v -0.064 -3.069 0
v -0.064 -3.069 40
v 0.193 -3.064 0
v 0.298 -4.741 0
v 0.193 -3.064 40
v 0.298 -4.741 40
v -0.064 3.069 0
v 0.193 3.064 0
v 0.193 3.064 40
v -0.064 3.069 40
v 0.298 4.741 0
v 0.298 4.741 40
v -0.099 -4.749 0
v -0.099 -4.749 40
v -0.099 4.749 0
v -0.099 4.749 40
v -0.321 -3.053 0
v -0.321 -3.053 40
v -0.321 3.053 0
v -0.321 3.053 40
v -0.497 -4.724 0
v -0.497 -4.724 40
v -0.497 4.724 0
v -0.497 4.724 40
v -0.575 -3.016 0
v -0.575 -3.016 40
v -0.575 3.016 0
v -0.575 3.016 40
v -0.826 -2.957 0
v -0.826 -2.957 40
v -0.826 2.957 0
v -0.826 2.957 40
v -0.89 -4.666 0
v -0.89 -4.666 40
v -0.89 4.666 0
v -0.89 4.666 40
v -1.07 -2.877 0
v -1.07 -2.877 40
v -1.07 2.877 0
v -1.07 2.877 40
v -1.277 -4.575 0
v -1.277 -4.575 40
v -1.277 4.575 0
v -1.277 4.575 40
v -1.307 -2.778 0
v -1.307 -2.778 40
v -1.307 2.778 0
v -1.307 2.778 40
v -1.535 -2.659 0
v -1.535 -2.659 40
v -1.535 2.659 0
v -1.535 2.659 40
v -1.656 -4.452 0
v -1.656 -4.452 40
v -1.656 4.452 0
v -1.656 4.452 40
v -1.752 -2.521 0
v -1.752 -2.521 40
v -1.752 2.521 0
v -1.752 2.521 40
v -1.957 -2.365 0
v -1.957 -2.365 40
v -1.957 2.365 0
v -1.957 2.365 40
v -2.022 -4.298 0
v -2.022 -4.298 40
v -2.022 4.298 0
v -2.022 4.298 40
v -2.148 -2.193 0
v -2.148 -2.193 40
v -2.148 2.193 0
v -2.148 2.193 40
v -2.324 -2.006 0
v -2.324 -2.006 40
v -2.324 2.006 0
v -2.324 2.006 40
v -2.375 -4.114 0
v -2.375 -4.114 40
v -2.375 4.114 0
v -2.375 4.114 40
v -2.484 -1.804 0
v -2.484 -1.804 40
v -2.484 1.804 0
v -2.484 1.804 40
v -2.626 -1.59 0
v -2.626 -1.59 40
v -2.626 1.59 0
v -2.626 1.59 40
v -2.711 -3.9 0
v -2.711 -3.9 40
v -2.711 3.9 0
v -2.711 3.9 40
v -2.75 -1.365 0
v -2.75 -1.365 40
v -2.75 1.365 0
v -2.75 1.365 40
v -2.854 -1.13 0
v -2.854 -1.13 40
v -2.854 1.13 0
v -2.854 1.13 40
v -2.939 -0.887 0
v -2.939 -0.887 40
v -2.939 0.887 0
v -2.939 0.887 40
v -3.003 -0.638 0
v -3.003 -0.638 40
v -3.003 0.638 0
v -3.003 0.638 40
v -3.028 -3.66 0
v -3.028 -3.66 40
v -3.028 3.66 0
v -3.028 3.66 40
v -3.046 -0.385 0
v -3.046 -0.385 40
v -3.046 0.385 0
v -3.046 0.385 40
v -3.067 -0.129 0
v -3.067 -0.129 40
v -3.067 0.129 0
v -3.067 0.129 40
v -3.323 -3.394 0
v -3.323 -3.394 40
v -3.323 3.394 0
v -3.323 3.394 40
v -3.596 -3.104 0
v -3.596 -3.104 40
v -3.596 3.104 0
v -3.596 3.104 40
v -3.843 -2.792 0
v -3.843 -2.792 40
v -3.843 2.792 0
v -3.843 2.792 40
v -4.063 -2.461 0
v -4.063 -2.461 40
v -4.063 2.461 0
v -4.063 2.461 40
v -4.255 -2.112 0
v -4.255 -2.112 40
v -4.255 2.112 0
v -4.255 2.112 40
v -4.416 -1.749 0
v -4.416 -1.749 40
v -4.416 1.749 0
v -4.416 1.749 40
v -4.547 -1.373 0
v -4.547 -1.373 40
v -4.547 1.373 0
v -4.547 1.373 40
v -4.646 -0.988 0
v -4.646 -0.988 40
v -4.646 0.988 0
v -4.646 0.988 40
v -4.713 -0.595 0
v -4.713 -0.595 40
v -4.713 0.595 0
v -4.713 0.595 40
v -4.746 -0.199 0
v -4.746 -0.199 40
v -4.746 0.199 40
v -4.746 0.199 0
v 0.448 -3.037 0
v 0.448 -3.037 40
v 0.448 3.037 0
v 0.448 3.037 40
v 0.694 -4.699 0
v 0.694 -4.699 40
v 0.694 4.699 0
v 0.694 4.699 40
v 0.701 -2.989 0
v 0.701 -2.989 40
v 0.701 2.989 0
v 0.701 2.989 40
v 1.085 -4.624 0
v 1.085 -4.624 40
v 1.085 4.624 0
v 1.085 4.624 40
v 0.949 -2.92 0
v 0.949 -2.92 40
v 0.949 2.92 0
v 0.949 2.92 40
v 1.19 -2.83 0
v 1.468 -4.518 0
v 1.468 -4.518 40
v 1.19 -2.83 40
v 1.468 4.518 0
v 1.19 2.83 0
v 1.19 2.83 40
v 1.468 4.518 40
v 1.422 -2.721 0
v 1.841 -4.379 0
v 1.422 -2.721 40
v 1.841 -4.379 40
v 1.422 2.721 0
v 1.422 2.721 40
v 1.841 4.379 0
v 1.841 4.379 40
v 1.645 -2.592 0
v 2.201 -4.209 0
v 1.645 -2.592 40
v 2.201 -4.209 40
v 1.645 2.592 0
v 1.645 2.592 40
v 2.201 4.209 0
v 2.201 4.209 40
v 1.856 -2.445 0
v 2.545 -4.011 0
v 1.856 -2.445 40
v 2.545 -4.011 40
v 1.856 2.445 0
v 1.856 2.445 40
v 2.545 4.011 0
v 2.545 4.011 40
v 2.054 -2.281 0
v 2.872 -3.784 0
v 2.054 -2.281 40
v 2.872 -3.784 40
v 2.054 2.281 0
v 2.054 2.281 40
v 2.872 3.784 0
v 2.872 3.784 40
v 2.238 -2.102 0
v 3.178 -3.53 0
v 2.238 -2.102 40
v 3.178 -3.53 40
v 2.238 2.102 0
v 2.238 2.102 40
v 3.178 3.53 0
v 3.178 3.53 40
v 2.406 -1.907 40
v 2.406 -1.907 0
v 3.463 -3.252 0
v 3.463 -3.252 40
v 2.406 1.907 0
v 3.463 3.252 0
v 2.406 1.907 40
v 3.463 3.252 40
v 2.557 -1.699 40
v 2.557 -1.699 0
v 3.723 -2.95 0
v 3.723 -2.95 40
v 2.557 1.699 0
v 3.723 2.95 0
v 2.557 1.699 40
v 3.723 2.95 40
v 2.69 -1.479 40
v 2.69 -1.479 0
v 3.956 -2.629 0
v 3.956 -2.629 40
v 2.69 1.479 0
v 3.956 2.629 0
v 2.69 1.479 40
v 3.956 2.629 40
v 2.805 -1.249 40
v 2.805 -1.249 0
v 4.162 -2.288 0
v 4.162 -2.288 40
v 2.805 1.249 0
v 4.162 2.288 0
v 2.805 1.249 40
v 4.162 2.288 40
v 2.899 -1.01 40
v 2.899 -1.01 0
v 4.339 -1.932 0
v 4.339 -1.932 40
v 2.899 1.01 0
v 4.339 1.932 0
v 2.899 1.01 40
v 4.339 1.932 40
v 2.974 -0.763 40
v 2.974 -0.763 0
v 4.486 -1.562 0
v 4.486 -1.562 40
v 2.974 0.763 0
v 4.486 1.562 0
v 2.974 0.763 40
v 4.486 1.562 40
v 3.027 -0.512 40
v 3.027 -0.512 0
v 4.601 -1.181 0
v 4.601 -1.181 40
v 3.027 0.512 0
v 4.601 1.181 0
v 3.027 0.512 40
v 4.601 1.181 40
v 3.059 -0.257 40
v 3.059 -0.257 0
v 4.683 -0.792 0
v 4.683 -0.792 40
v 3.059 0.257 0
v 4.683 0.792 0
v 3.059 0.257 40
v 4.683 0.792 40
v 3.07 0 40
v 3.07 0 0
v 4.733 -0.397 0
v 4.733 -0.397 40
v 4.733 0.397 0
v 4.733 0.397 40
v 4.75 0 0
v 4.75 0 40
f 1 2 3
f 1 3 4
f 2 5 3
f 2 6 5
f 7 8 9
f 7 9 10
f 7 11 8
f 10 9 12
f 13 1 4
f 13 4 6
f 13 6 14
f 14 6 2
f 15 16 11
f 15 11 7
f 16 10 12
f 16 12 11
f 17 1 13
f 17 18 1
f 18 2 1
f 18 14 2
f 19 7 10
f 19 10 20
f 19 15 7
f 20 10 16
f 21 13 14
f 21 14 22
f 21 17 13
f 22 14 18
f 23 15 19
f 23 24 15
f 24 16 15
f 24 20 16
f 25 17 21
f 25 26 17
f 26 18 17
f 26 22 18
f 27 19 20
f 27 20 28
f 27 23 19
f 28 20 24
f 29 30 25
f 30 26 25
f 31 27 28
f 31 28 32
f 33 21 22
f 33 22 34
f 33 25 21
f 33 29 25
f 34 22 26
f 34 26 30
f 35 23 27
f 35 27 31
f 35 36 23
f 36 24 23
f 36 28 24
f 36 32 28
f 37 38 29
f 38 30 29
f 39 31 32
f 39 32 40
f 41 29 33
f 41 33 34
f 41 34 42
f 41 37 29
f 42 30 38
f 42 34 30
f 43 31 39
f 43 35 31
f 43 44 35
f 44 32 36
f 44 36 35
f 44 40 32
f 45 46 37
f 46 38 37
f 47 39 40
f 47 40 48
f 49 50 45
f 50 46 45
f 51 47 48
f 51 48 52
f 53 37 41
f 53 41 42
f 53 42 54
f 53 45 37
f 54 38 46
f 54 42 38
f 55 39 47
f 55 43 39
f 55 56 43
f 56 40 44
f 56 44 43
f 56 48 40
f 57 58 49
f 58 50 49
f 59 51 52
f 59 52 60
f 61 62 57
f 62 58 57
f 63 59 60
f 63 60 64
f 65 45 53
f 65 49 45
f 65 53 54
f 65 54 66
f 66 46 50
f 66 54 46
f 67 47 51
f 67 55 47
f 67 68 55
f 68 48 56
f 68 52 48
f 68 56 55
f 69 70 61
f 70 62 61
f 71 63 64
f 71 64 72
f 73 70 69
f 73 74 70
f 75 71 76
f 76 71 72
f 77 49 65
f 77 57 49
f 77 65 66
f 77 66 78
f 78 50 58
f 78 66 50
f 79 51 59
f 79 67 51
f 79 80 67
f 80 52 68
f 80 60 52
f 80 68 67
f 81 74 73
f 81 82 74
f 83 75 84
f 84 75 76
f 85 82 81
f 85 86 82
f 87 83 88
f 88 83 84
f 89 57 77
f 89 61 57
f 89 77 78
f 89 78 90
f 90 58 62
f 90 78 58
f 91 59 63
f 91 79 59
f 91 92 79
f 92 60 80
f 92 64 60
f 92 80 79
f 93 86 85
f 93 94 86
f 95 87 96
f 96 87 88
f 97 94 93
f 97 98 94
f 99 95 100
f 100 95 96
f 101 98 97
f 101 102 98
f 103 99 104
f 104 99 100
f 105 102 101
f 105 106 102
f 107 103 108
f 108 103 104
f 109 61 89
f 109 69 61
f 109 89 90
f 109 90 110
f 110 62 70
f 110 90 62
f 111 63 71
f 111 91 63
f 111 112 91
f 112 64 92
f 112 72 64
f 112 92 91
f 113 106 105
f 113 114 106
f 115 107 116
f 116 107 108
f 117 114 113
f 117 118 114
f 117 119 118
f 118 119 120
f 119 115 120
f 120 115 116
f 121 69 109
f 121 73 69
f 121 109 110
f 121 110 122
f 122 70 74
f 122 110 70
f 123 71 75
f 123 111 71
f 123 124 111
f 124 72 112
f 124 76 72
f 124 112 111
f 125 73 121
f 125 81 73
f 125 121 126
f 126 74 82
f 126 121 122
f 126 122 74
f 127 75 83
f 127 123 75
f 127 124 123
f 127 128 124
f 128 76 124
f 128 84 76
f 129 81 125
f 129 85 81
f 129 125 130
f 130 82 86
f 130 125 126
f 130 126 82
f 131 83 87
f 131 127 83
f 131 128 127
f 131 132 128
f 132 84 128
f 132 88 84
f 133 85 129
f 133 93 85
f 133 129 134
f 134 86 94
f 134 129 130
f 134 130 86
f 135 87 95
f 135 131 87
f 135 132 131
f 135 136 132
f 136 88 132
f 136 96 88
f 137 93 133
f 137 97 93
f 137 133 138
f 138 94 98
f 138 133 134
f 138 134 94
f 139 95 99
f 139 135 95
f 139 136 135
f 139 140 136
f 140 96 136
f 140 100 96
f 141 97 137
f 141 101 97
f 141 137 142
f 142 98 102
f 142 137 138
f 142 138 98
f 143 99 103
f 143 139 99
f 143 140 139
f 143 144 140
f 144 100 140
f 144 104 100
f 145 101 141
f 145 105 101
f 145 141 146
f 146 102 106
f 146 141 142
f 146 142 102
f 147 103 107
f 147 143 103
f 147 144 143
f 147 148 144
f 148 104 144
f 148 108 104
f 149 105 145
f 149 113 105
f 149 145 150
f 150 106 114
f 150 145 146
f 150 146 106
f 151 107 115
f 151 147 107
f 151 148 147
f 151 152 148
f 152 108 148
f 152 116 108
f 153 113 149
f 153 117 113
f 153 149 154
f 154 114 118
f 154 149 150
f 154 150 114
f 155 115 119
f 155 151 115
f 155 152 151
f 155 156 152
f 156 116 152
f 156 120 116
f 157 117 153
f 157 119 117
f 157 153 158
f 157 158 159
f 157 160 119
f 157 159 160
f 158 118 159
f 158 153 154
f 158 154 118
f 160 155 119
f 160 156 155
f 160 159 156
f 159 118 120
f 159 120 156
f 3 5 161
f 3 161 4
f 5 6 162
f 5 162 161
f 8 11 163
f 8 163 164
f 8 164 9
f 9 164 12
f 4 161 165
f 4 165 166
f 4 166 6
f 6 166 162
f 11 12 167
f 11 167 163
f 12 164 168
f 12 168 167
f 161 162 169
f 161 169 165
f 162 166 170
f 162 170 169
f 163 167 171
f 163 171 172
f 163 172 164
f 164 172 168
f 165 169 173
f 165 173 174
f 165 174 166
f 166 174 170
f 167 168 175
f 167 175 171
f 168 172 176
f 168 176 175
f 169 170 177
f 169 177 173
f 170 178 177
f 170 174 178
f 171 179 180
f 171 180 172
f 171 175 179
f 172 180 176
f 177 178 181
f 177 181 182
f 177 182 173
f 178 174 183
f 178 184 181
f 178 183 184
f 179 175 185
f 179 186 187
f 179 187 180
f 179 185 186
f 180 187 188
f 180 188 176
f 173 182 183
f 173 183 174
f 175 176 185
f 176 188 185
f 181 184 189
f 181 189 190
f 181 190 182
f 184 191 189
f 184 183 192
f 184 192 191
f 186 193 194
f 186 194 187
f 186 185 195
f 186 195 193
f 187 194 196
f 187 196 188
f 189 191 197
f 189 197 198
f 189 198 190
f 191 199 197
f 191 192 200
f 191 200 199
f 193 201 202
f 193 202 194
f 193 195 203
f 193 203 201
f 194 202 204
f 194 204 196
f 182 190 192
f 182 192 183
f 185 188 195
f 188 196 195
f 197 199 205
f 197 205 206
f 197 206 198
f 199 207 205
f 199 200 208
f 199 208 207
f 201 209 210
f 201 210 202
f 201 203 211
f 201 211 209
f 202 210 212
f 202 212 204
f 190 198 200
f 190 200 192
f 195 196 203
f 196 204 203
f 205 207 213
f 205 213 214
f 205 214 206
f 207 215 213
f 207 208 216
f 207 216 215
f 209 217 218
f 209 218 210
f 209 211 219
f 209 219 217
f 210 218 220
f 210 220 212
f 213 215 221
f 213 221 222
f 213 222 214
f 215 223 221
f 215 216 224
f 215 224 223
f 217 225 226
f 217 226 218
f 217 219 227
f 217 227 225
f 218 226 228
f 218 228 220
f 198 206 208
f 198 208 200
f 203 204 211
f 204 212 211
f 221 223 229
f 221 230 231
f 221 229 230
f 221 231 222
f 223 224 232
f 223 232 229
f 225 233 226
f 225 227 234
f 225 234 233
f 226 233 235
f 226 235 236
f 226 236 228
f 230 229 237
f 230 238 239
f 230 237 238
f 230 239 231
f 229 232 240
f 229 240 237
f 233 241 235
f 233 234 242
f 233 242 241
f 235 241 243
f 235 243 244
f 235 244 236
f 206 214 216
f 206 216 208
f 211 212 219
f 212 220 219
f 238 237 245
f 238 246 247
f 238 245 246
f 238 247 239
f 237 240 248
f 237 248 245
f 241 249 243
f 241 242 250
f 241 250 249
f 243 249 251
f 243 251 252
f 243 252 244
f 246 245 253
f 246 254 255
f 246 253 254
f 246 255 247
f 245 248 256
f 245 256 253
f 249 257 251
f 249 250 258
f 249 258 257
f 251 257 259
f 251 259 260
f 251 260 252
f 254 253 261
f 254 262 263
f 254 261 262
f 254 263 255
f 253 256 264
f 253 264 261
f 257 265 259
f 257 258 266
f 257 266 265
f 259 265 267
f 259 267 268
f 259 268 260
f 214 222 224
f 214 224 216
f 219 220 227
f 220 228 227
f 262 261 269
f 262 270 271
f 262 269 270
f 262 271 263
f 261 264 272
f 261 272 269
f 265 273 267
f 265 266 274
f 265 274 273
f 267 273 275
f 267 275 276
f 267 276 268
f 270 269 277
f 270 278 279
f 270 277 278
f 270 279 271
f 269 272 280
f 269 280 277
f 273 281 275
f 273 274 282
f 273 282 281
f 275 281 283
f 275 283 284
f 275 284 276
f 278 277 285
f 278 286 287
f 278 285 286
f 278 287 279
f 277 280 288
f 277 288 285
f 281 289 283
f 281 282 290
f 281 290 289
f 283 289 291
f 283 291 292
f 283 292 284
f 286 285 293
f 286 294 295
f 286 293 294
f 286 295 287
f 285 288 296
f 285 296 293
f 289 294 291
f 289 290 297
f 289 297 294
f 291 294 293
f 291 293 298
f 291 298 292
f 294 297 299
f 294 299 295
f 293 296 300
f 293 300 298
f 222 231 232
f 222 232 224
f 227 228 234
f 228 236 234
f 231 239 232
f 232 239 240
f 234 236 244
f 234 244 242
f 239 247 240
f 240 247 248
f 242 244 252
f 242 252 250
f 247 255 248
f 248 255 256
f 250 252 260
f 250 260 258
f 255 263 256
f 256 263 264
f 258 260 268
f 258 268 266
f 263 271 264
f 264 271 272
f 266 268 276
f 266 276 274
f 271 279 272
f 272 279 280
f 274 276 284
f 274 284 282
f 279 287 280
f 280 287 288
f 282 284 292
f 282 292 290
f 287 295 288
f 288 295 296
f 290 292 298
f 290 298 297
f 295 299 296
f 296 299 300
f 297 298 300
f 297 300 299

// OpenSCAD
// file: ../configuration.scad
// Created by Phisik on 2018-12-16
// Main settings header for peristaltic pump

// Licence GPL

// some extra gap for clean difference render in preview
eps = 0.1;

// Part smoothness, the more the better
$fn = 100;

layer_height = 0.25;

// Silicon hose settings
//====================================================================================

// NB! The larger the hose radius the higher torque is required
r_hose = 22;        // radius of hose center line
                    // Update: after addition of groove hose center is at r_hose + hose_groove
d_hose = 9;         // hose diameter

hose_wall = 1.5;   // hose wall thickness
					// NB! hose_wall affects both stator & rotor geometry
					
hose_clearance = 0.2;   // extra clearance between hose & bearings
						// NB! hose_clearance affects only rotor geometry
						// If you experience lack of suction reduce hose_clearance 
						// If motor misses steps increase hose_clearance, take motor with higher 
						// torque or hose with thinner wall

hose_fitting_delta_d = 1; // difference between hose and hose fitting diameter
						
						
// Stator settings
//====================================================================================
wall = 4;             // wall thickness, should be larger than hose_groove by 1mm or more
hose_groove = 0;     // NB! Rudiment form v1. Do not change. 
					 // groove depth for hose to stay in place 

h_base = 4;             // height of stator base
h_support_base = 2;		// height of support base

stator_support_gap = 1;		// gap between support & stator base for spring tension

stator_facet = 10;   // facets of outer support corners

mount_width  = 8;
mount_length = 10;

d_screw = 3.5;           // screw diameter
d_nut = 6.5;             // nut & screw head diameter
d_nut_tight = 5.5/0.87; // nut diameter for nuts to be fitted with soldering iron

l_handle = 10;

r_water_sink = 5.5;

need_nut_cuts_in_support = 0; // cut holes for nuts in support
need_nut_cuts_in_stator  = 1; // cut holes for support nut in stator

hose_fixator_length = 15;  // length of hose inset for fixing it on the stator


// Bearing settings
//====================================================================================
bearingNum = 3;     // Number of bearings per arm

h_bearing = 5;      // bearing height
d_bearing = 14;     // OD
d_bearing_axis = 5;         // ID
w_axis = 1;         // thickness of inner bushing



// Rotor settings
//==================================================================================== 
d_rotor = 17.5;   // Outer rotor diameter

arm_num = 3;    // number of rotor arms
w_arm  = 15;    // arm width
h_arm = 3;      // arm height

enable_hose_guides = 1;
w_hose_guide = 8;
hose_guide_clearance = 0.75;
r_hose_guide_facet = 2;

gap = 0.2;      // some clearance between joins & moving parts

arm_clearance = 4;  // clearance between arm and stator

bearing_axes_clearance = 0.075;  	     // clearance on rotor base between bearings and axes
rotor_bearing_axes_clearance = 0.3;  // clearance on rotor cap between axes and holes
bearing_clearance = 1; 				 // distance from stator base to the lowest arms

// 1602 lcd settings
//====================================================================================
y_lcd_hole = 31;
x_lcd_hole = 75;
d_lcd_hole = 3;

l_lcd_plate = 80;
w_lcd_plate = 36.11;
h_lcd_plate = 1.6;

l_lcd = 71.5;
w_lcd = 24.5;
h_lcd = 8.75;

x_lcd_shift = -0.1;
y_lcd_shift = +0.75;

l_lcd_i2c = 42;
w_lcd_i2c = 19;
h_lcd_i2c = 1.5;


// Nema 17 settings
//====================================================================================
nema_screw_distance = 31;  
nema_shaft_diameter = 5.5;
nema_shaft_height = 25;
nema_knob_diameter = 23;
nema_knob_height = 2.5;
nema_width = 42.3;
nema_angle_cut = 4;
// main file
include <../configuration.scad>

$fn = 75;

// Length
h=40;

//Radius
r=9.5/2; 

//wall thickness
th=0.42*4; 

difference(){
    cylinder(r=r, h=h);
    cylinder(r=r-th, h=h);
}
